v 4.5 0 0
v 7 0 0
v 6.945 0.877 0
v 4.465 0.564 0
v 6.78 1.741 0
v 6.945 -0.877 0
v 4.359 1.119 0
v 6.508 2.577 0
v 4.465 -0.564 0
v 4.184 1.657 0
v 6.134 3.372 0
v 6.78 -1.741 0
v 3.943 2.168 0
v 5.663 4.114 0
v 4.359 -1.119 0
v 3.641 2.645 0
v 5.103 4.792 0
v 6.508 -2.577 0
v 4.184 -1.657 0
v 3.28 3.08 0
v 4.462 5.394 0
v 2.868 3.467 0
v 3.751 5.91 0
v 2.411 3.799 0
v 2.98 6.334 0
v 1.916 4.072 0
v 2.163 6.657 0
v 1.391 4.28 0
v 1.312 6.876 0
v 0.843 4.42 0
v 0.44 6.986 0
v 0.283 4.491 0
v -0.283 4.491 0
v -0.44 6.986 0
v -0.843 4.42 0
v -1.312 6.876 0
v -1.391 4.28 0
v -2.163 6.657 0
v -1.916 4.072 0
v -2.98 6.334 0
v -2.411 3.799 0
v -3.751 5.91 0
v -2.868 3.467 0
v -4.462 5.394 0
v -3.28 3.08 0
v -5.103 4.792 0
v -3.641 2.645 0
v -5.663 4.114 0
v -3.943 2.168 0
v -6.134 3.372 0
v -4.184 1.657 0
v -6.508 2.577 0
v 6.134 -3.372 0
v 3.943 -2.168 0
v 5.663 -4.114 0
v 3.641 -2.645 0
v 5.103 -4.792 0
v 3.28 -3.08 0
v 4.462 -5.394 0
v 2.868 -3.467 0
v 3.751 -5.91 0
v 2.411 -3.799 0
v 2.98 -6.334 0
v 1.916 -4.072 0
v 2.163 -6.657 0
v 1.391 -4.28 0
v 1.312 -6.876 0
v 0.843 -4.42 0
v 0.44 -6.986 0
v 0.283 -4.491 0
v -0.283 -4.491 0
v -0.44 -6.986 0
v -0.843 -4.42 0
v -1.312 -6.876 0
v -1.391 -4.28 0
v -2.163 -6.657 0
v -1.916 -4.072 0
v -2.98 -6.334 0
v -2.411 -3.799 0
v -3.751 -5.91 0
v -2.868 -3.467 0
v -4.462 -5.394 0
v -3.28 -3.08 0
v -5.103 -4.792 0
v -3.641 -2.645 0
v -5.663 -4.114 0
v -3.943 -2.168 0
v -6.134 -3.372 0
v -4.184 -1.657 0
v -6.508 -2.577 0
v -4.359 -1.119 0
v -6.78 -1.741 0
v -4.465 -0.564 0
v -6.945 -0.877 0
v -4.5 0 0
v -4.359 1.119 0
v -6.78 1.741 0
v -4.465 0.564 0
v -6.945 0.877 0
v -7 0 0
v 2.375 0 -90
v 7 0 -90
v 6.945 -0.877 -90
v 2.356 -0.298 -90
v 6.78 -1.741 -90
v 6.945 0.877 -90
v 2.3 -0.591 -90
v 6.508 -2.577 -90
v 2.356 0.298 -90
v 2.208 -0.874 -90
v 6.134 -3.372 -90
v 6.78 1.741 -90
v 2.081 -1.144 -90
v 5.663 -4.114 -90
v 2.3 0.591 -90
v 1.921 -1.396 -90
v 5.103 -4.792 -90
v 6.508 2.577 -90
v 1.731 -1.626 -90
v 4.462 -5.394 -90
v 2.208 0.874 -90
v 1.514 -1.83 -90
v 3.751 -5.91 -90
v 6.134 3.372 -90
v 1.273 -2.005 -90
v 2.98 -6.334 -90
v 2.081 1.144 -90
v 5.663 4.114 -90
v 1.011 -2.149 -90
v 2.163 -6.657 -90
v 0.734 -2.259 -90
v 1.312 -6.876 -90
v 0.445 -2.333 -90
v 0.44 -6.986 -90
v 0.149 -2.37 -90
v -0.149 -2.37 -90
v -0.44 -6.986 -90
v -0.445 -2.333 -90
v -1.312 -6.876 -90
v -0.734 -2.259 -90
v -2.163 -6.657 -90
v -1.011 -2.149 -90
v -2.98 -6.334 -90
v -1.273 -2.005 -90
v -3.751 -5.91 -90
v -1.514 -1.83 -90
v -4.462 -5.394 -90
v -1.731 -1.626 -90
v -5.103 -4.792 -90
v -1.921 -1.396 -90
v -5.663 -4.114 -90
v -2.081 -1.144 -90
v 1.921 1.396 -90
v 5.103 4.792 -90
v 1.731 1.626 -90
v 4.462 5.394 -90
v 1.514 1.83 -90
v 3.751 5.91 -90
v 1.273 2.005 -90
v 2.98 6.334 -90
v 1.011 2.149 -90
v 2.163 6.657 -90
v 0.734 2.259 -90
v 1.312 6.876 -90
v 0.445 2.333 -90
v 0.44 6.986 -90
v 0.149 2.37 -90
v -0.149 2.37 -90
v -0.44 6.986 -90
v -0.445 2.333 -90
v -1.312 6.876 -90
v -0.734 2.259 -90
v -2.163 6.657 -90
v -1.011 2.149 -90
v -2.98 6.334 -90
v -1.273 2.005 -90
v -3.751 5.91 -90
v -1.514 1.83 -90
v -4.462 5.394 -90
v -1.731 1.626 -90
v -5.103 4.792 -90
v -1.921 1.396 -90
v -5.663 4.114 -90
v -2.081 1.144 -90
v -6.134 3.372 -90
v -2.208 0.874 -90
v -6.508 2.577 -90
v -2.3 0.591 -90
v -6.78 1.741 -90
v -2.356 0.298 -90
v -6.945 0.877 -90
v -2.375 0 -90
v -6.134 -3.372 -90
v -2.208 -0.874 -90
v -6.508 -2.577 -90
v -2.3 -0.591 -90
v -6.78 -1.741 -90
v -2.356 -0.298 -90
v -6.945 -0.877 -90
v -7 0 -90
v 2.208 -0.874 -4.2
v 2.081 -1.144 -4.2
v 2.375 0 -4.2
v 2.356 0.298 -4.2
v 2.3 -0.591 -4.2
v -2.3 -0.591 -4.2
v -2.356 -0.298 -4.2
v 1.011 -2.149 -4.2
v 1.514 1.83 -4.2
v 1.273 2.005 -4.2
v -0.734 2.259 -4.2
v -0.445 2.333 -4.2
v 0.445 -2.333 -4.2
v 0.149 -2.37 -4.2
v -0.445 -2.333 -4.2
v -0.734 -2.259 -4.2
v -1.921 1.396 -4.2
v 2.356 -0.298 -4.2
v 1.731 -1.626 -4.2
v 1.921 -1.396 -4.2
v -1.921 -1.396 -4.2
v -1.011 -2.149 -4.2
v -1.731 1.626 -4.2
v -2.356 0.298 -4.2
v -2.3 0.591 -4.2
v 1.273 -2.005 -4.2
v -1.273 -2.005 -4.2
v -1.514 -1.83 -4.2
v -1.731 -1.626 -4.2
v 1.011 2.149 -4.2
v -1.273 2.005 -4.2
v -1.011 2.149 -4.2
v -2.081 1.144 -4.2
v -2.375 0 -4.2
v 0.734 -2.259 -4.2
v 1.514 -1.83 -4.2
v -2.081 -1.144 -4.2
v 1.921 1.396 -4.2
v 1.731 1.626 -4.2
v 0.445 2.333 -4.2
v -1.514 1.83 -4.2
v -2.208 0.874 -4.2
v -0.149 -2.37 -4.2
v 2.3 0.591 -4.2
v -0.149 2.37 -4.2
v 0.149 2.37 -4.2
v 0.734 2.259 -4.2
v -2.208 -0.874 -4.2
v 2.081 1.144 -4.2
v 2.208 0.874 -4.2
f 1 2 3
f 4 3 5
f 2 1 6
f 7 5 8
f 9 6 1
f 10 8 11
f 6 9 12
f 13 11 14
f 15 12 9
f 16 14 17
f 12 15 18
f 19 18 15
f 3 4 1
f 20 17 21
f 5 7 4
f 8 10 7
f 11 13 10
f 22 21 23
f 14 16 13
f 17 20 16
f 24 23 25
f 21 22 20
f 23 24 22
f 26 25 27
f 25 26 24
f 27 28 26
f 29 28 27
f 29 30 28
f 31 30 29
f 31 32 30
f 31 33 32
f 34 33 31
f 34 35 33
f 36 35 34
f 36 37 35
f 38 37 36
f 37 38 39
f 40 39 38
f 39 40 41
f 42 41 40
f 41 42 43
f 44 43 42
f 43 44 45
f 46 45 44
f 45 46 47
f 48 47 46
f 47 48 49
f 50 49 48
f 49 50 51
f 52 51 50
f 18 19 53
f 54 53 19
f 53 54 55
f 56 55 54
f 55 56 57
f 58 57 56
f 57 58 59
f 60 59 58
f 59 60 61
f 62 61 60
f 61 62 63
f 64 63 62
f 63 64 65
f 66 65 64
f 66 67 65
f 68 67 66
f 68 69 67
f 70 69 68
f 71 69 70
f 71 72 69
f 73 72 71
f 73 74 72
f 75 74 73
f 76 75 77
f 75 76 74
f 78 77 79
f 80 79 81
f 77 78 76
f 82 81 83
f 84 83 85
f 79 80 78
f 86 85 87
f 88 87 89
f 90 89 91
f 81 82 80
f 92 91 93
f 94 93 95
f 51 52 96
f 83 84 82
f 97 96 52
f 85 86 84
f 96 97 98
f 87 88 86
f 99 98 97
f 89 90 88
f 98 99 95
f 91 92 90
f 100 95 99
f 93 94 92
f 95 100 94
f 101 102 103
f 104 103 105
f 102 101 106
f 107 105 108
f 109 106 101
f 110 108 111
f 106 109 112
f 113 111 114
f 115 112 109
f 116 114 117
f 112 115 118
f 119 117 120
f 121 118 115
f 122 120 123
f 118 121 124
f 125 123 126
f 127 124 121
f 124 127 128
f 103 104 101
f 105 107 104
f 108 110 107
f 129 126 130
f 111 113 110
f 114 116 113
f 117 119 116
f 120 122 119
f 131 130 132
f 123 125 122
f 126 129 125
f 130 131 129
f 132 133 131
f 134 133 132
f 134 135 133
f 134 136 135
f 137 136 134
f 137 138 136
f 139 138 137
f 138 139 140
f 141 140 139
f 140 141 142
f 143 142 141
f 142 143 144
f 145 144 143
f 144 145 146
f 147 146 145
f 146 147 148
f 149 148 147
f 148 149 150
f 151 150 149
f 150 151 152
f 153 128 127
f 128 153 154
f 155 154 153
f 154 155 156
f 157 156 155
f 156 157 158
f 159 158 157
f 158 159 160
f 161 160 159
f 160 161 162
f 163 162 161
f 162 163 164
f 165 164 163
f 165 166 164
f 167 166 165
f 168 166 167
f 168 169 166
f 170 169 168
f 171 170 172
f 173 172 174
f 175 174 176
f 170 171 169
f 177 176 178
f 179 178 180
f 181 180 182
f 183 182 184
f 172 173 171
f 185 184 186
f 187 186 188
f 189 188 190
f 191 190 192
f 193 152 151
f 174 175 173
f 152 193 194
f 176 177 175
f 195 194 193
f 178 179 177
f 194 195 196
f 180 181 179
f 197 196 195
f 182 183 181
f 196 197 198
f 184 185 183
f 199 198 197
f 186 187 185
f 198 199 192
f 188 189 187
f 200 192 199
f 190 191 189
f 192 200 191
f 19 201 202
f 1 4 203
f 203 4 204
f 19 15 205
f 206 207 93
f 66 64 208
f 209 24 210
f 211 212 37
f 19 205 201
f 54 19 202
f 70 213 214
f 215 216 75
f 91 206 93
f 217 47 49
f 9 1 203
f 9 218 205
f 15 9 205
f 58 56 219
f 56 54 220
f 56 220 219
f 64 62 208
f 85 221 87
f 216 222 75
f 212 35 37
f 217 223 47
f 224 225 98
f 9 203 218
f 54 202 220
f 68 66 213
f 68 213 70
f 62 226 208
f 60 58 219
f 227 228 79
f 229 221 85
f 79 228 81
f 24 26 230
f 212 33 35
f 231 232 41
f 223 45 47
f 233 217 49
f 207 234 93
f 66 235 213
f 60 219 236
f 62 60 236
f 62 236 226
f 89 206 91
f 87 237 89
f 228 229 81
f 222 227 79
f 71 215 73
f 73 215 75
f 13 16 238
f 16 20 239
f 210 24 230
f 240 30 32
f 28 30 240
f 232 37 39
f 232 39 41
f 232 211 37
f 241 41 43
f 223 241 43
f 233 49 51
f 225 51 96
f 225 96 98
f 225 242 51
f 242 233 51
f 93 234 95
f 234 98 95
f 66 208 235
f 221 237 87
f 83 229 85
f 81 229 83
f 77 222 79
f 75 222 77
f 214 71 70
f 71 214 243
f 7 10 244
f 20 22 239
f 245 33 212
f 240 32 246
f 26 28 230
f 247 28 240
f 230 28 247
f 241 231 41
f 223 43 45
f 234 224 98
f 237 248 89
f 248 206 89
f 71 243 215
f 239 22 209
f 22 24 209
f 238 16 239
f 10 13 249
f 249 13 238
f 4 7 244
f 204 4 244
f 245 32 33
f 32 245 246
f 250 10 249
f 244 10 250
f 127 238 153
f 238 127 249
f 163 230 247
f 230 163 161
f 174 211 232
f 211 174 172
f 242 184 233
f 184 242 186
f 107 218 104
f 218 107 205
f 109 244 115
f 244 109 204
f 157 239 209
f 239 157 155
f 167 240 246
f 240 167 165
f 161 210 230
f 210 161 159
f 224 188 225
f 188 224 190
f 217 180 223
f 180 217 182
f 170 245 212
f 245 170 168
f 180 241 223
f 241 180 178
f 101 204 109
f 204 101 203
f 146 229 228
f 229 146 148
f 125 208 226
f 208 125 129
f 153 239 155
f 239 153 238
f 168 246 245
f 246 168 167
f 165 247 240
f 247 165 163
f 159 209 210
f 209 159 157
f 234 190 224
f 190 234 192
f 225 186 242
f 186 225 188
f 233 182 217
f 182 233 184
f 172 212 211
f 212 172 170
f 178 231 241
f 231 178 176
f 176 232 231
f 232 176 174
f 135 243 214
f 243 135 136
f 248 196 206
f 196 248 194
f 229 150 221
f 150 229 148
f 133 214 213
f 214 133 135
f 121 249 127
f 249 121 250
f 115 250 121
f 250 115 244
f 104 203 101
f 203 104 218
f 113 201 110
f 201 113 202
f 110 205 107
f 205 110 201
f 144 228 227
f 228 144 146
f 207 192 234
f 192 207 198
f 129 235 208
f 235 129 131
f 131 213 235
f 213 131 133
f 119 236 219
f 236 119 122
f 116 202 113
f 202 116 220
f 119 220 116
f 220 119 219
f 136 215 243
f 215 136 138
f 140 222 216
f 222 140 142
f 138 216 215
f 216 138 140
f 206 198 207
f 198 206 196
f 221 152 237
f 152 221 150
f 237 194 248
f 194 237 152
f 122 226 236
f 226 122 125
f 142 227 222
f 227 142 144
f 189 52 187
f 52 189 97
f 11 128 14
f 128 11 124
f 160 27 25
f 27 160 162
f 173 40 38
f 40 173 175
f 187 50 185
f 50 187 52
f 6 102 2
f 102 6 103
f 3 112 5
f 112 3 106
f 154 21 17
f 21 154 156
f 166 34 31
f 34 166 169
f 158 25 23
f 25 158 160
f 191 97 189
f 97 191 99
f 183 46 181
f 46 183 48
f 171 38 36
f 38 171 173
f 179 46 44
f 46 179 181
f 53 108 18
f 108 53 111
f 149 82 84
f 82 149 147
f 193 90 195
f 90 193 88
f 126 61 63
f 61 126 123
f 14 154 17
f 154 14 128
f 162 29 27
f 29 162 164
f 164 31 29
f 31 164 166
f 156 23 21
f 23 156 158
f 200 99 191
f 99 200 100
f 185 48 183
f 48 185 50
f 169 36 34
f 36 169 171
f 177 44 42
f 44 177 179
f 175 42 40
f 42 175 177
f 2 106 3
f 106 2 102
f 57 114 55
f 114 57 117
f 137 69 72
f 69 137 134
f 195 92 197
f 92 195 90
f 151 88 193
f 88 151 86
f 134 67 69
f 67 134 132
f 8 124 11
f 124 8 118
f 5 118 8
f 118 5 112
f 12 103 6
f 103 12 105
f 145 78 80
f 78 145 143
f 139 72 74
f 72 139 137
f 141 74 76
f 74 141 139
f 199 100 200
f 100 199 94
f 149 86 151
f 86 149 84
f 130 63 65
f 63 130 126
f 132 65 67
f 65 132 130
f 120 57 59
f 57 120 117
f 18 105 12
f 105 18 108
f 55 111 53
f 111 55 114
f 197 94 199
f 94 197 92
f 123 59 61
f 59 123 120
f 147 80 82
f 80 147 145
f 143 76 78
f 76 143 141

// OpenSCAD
$fn = 50;


difference() {
	union() {
		translate(v = [0, 0, -90.0000000000]) {
			cylinder(h = 90, r = 7.0000000000);
		}
		cylinder(h = 0, r = 10.0000000000);
	}
	union() {
		translate(v = [0, 0, 0]) {
			rotate(a = [0, 0, 0]) {
				difference() {
					union() {
						#translate(v = [0, 0, -90.0000000000]) {
							cylinder(h = 90, r = 2.2500000000);
						}
						#translate(v = [0, 0, -4.2000000000]) {
							cylinder(h = 4.2000000000, r1 = 2.3750000000, r2 = 4.5000000000);
						}
						#translate(v = [0, 0, -90.0000000000]) {
							cylinder(h = 90, r = 2.3750000000);
						}
						#translate(v = [0, 0, -90.0000000000]) {
							cylinder(h = 90, r = 2.2500000000);
						}
					}
					union();
				}
			}
		}
	}
}
